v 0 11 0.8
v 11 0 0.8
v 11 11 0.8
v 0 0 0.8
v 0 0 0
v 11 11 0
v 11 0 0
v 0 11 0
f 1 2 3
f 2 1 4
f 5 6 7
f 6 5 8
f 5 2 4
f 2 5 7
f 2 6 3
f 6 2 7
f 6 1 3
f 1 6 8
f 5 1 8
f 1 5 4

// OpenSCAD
/* Warning, this is a very basic generator with a lot of approximation 
input data : [WFBGA, TNX, 11x11x0.8mm, 169, , A, C04-00336A]
generated by com.zoubworld.electronics.cad.model3d.Basic
Date : Sun Feb 15 10:50:48 CET 2026
*/

//body
color("black")
translate([0,0,0])
cube([11.0,11.0,0.8], center=false);
